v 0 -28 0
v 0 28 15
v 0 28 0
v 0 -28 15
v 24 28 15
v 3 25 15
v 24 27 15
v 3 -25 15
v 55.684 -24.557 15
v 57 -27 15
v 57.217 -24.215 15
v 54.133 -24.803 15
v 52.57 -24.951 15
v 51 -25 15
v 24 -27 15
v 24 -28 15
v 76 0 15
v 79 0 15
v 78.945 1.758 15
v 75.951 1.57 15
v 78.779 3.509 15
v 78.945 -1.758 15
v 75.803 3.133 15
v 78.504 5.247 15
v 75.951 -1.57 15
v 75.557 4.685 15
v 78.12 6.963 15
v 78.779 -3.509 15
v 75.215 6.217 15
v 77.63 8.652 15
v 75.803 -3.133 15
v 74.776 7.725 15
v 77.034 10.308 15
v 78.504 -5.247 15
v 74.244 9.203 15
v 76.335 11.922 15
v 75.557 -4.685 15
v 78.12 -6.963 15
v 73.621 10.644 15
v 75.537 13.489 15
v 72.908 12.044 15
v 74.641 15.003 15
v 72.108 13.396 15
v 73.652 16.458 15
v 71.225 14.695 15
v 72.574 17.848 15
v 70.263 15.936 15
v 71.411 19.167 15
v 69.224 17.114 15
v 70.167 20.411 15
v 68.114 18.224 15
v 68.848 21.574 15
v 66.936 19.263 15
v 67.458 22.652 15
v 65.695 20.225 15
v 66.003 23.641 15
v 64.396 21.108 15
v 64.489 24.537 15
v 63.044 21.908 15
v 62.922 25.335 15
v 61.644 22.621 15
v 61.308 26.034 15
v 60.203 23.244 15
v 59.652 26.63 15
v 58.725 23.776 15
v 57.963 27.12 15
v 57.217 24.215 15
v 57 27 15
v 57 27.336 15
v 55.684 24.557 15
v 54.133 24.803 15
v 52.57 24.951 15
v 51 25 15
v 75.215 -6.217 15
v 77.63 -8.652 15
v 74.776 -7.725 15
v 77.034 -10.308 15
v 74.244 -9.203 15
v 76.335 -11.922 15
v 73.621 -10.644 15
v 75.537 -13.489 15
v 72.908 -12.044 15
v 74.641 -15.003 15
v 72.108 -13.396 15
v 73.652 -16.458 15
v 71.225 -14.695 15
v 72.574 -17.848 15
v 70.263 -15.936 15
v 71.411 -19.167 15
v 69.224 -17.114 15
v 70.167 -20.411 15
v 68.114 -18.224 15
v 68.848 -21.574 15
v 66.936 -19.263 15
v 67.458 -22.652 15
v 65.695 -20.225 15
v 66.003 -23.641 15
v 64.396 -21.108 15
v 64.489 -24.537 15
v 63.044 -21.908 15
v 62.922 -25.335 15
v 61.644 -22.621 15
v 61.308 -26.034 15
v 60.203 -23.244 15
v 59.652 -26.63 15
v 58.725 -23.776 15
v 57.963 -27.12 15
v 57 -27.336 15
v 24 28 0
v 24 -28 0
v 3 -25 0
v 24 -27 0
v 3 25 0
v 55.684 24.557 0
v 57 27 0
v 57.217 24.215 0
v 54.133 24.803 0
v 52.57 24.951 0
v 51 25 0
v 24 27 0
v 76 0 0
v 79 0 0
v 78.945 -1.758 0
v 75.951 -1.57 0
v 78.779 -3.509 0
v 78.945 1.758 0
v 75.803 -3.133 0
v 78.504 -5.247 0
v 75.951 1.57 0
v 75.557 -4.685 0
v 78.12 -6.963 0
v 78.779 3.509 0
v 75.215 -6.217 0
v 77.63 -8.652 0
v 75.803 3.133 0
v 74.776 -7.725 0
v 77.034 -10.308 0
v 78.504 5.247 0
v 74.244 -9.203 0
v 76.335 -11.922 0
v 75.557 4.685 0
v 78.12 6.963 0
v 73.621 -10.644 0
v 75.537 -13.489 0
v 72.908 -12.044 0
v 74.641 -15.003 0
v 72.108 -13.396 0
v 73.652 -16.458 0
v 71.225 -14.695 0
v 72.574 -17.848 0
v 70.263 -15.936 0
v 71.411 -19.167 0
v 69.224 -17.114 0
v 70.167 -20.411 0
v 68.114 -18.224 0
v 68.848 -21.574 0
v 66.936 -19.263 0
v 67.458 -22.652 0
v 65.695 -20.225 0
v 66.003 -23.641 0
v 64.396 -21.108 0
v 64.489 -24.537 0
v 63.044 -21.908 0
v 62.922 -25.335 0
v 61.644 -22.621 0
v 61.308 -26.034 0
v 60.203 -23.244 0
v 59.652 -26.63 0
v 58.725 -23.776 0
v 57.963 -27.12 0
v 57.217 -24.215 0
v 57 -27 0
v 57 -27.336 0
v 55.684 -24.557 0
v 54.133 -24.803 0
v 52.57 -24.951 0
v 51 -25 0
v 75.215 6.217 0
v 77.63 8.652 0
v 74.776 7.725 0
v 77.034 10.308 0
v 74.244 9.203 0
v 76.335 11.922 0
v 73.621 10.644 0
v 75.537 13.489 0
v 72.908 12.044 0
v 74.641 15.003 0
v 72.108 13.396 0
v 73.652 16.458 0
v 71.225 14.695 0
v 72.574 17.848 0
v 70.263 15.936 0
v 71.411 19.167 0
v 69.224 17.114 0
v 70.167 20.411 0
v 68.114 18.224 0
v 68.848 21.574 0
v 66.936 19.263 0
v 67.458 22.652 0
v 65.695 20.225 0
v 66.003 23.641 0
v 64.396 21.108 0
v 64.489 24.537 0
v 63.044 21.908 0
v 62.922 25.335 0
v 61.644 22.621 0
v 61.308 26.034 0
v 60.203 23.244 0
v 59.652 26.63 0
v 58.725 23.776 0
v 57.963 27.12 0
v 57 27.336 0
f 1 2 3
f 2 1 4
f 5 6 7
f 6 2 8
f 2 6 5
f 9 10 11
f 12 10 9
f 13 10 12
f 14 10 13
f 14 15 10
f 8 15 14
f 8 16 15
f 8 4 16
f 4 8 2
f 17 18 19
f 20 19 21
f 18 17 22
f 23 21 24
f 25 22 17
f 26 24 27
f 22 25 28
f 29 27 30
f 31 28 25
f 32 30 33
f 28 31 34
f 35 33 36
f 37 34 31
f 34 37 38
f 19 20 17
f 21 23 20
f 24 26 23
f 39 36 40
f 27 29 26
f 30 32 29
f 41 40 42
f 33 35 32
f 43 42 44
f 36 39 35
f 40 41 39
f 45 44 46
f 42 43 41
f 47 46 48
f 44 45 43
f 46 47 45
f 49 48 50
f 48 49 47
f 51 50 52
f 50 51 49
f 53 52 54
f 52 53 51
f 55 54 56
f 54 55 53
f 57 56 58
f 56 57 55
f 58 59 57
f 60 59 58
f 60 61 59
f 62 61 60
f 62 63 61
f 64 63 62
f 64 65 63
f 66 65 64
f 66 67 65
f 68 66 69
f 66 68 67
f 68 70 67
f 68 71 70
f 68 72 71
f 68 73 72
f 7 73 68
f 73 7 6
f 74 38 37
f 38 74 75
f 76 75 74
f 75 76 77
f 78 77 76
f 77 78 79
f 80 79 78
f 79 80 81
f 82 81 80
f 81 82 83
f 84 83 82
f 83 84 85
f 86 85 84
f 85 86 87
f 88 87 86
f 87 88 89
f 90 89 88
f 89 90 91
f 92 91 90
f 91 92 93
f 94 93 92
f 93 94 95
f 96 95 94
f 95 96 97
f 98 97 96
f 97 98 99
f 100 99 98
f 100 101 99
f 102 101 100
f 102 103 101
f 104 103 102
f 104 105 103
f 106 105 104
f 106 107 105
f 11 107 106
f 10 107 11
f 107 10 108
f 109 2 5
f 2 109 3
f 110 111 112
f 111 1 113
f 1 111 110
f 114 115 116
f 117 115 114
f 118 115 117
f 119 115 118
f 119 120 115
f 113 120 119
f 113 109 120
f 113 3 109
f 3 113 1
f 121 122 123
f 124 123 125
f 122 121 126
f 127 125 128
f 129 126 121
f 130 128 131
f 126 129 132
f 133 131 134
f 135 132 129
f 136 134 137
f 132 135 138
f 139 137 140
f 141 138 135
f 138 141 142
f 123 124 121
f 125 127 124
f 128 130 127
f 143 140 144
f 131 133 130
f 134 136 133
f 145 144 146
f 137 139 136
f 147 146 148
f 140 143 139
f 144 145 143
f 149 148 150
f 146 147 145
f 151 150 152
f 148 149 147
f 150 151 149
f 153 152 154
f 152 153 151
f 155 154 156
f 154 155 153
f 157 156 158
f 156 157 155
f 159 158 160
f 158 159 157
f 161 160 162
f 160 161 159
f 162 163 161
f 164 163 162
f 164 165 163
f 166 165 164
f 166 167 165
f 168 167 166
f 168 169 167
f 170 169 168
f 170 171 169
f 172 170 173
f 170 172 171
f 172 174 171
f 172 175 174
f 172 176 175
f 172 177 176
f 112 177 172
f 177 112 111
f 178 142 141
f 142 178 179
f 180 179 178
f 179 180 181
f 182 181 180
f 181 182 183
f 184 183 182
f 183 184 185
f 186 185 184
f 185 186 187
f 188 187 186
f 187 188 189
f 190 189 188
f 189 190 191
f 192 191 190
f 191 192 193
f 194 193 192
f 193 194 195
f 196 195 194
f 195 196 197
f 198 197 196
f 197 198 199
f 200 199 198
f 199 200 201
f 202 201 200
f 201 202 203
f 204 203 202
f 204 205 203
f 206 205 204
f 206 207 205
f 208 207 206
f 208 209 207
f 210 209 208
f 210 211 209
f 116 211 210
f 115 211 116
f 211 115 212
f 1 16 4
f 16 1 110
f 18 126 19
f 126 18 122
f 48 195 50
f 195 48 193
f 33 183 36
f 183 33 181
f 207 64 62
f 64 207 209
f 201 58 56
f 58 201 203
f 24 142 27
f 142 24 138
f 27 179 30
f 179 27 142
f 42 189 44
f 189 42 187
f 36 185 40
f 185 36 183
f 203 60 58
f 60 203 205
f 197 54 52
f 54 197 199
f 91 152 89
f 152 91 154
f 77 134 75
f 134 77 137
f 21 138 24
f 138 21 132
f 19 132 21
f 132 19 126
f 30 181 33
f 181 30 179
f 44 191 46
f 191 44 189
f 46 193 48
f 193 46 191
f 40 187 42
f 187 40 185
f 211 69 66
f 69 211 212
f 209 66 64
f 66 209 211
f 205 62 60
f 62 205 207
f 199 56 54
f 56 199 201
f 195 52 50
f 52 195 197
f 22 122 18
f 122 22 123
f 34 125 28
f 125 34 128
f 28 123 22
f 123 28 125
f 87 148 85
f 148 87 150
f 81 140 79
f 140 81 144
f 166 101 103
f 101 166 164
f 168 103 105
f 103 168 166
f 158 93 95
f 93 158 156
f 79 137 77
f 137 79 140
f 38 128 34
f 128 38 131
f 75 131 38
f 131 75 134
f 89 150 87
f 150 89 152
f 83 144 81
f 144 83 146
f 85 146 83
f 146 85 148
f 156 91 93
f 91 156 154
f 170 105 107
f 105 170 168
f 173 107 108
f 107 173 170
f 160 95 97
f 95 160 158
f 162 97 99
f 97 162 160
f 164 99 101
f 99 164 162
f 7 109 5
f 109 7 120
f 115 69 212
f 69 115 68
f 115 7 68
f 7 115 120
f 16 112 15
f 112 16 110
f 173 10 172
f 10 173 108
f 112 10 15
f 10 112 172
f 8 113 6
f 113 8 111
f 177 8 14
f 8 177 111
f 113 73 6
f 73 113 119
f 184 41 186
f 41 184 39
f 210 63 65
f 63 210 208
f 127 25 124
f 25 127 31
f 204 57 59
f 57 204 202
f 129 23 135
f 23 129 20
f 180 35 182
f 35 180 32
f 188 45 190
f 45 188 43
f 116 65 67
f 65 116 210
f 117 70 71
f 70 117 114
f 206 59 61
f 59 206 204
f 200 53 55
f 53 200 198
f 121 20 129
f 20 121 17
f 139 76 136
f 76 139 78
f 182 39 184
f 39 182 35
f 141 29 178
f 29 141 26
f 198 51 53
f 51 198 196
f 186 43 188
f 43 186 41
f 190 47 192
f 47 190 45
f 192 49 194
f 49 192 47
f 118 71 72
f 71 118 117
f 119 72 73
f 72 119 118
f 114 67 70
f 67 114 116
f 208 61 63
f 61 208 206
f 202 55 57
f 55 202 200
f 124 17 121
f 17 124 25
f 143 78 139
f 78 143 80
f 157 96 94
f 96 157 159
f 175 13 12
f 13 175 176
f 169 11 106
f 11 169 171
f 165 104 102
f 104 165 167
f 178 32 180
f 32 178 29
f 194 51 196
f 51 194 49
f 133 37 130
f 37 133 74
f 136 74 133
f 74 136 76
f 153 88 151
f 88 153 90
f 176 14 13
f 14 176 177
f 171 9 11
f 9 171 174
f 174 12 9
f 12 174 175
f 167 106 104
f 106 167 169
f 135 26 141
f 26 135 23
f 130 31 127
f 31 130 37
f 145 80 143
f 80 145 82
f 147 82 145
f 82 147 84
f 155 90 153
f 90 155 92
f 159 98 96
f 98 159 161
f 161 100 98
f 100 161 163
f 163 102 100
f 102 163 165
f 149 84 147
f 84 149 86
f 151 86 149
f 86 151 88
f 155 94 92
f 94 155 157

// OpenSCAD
// file: porte-balles.scad
include <dimensions.scad>

included=false; // this value will be overriden in the including file
included_in_attache=false; // this value will be overriden in the including file
included_in_sommet=false; // this value will be overriden in the including file


module balle()
{
    sphere(d=d);
}

module cubes_montants() 
{
    translate ([d/2+e+jeu/2-l_m/2,-d/2-e-jeu/2,0]) 
        cube([l_m,d+2*e+jeu, h_m+encastrement]);
    translate ([3*d/2+2*e+jeu/2-l_m/2,-d/2-e-jeu/2,0]) 
        cube([l_m,d+2*e+jeu, h_m+encastrement]);
}


module montants() {
    intersection () {
        difference() {
            enveloppe_ext(hull=false);
            enveloppe_int(hull=true);
        }
        cubes_montants();
    }
}

module porte_balles()
{
    intersection () {
        enveloppe(hull=true);
        union () {
            // ceinture basse
            translate ([0,-d/2-e-jeu/2,0]) 
                cube([2*d+3*e+jeu,d+2*e+jeu, h_cb]);
        }
    }
    // montants
    montants();
    
    if (included) {
        translate ([d/2+e+jeu/2,0,delta_h])
            balle();
        translate ([d/2+e+d+e+jeu/2,0,delta_h])
            balle();
    }
}

module grandes_spheres() {
    translate([d/2+e+jeu/2,0,delta_h])
        sphere(d=d+2*e+jeu);
    translate([d/2+e+d+e+jeu/2,0,delta_h])
        sphere(d=d+2*e+jeu);
}

module petites_spheres() {
    translate([d/2+e+jeu/2,0,delta_h])
        sphere(d=d+jeu);
    translate([d/2+e+d+e+jeu/2,0,delta_h])
        sphere(d=d+jeu);
}

module enveloppe_ext(hull) {
    if (hull) {
        hull () grandes_spheres();
    } else {
        grandes_spheres();
    }
}

module enveloppe_int(hull) {
    if (hull) {
        hull () petites_spheres();
    } else {
        petites_spheres();
    }
}

module enveloppe(hull)
{
    intersection () {
        difference () {
            enveloppe_ext(hull);
            enveloppe_int(hull);            
        }
        translate ([0,-d/2-e-jeu/2,0])
            cube([2*d+3*e+jeu,d+2*e+jeu,d /* suffisamment haut */]);
    }
}
    
if (!included && !included_in_sommet && !included_in_attache) {
    porte_balles();
} 
// file: attache.scad
include <dimensions.scad>

include <porte-balles.scad>

included=false; // this value will be overriden in the including file
included_in_puits=false; // this value will be overriden in the including file

included_in_attache=true; // this value will override the ones in the include files

  
module attache(pos)
{
    la = min(l-w/2+e, d + e /*largeur porte_balle*/) - 10; // longueur attache
    translate(pos) 
        translate([0,-e/2,0]) 
            cube([la, e, ha+h]);    
}



if (!included && !included_in_puits) {
    rotate([90,0,0]) 
        difference () {
            attache();
            translate ([-(d/2+e+jeu/2),d/2+e/2+e-encastrement,ha+h-h_cb])
             porte_balles();
        }
}
// file: dimensions.scad
epsilon = 0.1; // utilisé pour éviter que les évidements se fassent mal
jeu = 2; // jeu à prévoir 

encastrement = 1; // encastrements a coller

w = 50; // largeur intérieure du puits
l = 73; // longueur intérieure du puits
h = 15; // hauteur du puits
e = 3; // epaisseur du puits
h_cb = 10; // hauteur ceinture basse
delta_h = 7; // hauteur supplementaire a prevoir en dessous du milieu des balles pour qu'elles soient retenues dans la cage


ha = 40; //hauteur de l'attache, entre le puits et le porte balles

d = 40; // diamètre des balles de ping pong

l_m = 10; // largeur des montants
h_m = 20; // hauteur des montants

$fn=50;
// main file
include <dimensions.scad>

include <attache.scad>

included=false; // this value will be overriden in the including file
included_in_puits=true; // this value will override the ones in the include files
  
module puits()
{
    $fn=100;
    
    r=w/2; // rayon de courbure
    difference () {
        union () {
            translate([0, -w/2-e, 0]) cube([l-w/2+e,w+2*e,h]);
            translate([l-w/2+e, 0, 0]) cylinder(h,r=r+e);
        }
        union () {
            translate([e, -w/2, -epsilon]) cube([l-w/2,w,h+2*epsilon]);
            translate([l-w/2+e, 0, -epsilon]) cylinder(h+2*epsilon,r=r);

            if (included_in_puits) {
                attache([d/2+e+jeu/2,w/2+e/2+e-encastrement,-epsilon]);
                attache([d/2+e+jeu/2,-w/2-e/2-e+encastrement,-epsilon]);
            }
                    
        }        
    }
}

if (!included) {
    puits();
}
